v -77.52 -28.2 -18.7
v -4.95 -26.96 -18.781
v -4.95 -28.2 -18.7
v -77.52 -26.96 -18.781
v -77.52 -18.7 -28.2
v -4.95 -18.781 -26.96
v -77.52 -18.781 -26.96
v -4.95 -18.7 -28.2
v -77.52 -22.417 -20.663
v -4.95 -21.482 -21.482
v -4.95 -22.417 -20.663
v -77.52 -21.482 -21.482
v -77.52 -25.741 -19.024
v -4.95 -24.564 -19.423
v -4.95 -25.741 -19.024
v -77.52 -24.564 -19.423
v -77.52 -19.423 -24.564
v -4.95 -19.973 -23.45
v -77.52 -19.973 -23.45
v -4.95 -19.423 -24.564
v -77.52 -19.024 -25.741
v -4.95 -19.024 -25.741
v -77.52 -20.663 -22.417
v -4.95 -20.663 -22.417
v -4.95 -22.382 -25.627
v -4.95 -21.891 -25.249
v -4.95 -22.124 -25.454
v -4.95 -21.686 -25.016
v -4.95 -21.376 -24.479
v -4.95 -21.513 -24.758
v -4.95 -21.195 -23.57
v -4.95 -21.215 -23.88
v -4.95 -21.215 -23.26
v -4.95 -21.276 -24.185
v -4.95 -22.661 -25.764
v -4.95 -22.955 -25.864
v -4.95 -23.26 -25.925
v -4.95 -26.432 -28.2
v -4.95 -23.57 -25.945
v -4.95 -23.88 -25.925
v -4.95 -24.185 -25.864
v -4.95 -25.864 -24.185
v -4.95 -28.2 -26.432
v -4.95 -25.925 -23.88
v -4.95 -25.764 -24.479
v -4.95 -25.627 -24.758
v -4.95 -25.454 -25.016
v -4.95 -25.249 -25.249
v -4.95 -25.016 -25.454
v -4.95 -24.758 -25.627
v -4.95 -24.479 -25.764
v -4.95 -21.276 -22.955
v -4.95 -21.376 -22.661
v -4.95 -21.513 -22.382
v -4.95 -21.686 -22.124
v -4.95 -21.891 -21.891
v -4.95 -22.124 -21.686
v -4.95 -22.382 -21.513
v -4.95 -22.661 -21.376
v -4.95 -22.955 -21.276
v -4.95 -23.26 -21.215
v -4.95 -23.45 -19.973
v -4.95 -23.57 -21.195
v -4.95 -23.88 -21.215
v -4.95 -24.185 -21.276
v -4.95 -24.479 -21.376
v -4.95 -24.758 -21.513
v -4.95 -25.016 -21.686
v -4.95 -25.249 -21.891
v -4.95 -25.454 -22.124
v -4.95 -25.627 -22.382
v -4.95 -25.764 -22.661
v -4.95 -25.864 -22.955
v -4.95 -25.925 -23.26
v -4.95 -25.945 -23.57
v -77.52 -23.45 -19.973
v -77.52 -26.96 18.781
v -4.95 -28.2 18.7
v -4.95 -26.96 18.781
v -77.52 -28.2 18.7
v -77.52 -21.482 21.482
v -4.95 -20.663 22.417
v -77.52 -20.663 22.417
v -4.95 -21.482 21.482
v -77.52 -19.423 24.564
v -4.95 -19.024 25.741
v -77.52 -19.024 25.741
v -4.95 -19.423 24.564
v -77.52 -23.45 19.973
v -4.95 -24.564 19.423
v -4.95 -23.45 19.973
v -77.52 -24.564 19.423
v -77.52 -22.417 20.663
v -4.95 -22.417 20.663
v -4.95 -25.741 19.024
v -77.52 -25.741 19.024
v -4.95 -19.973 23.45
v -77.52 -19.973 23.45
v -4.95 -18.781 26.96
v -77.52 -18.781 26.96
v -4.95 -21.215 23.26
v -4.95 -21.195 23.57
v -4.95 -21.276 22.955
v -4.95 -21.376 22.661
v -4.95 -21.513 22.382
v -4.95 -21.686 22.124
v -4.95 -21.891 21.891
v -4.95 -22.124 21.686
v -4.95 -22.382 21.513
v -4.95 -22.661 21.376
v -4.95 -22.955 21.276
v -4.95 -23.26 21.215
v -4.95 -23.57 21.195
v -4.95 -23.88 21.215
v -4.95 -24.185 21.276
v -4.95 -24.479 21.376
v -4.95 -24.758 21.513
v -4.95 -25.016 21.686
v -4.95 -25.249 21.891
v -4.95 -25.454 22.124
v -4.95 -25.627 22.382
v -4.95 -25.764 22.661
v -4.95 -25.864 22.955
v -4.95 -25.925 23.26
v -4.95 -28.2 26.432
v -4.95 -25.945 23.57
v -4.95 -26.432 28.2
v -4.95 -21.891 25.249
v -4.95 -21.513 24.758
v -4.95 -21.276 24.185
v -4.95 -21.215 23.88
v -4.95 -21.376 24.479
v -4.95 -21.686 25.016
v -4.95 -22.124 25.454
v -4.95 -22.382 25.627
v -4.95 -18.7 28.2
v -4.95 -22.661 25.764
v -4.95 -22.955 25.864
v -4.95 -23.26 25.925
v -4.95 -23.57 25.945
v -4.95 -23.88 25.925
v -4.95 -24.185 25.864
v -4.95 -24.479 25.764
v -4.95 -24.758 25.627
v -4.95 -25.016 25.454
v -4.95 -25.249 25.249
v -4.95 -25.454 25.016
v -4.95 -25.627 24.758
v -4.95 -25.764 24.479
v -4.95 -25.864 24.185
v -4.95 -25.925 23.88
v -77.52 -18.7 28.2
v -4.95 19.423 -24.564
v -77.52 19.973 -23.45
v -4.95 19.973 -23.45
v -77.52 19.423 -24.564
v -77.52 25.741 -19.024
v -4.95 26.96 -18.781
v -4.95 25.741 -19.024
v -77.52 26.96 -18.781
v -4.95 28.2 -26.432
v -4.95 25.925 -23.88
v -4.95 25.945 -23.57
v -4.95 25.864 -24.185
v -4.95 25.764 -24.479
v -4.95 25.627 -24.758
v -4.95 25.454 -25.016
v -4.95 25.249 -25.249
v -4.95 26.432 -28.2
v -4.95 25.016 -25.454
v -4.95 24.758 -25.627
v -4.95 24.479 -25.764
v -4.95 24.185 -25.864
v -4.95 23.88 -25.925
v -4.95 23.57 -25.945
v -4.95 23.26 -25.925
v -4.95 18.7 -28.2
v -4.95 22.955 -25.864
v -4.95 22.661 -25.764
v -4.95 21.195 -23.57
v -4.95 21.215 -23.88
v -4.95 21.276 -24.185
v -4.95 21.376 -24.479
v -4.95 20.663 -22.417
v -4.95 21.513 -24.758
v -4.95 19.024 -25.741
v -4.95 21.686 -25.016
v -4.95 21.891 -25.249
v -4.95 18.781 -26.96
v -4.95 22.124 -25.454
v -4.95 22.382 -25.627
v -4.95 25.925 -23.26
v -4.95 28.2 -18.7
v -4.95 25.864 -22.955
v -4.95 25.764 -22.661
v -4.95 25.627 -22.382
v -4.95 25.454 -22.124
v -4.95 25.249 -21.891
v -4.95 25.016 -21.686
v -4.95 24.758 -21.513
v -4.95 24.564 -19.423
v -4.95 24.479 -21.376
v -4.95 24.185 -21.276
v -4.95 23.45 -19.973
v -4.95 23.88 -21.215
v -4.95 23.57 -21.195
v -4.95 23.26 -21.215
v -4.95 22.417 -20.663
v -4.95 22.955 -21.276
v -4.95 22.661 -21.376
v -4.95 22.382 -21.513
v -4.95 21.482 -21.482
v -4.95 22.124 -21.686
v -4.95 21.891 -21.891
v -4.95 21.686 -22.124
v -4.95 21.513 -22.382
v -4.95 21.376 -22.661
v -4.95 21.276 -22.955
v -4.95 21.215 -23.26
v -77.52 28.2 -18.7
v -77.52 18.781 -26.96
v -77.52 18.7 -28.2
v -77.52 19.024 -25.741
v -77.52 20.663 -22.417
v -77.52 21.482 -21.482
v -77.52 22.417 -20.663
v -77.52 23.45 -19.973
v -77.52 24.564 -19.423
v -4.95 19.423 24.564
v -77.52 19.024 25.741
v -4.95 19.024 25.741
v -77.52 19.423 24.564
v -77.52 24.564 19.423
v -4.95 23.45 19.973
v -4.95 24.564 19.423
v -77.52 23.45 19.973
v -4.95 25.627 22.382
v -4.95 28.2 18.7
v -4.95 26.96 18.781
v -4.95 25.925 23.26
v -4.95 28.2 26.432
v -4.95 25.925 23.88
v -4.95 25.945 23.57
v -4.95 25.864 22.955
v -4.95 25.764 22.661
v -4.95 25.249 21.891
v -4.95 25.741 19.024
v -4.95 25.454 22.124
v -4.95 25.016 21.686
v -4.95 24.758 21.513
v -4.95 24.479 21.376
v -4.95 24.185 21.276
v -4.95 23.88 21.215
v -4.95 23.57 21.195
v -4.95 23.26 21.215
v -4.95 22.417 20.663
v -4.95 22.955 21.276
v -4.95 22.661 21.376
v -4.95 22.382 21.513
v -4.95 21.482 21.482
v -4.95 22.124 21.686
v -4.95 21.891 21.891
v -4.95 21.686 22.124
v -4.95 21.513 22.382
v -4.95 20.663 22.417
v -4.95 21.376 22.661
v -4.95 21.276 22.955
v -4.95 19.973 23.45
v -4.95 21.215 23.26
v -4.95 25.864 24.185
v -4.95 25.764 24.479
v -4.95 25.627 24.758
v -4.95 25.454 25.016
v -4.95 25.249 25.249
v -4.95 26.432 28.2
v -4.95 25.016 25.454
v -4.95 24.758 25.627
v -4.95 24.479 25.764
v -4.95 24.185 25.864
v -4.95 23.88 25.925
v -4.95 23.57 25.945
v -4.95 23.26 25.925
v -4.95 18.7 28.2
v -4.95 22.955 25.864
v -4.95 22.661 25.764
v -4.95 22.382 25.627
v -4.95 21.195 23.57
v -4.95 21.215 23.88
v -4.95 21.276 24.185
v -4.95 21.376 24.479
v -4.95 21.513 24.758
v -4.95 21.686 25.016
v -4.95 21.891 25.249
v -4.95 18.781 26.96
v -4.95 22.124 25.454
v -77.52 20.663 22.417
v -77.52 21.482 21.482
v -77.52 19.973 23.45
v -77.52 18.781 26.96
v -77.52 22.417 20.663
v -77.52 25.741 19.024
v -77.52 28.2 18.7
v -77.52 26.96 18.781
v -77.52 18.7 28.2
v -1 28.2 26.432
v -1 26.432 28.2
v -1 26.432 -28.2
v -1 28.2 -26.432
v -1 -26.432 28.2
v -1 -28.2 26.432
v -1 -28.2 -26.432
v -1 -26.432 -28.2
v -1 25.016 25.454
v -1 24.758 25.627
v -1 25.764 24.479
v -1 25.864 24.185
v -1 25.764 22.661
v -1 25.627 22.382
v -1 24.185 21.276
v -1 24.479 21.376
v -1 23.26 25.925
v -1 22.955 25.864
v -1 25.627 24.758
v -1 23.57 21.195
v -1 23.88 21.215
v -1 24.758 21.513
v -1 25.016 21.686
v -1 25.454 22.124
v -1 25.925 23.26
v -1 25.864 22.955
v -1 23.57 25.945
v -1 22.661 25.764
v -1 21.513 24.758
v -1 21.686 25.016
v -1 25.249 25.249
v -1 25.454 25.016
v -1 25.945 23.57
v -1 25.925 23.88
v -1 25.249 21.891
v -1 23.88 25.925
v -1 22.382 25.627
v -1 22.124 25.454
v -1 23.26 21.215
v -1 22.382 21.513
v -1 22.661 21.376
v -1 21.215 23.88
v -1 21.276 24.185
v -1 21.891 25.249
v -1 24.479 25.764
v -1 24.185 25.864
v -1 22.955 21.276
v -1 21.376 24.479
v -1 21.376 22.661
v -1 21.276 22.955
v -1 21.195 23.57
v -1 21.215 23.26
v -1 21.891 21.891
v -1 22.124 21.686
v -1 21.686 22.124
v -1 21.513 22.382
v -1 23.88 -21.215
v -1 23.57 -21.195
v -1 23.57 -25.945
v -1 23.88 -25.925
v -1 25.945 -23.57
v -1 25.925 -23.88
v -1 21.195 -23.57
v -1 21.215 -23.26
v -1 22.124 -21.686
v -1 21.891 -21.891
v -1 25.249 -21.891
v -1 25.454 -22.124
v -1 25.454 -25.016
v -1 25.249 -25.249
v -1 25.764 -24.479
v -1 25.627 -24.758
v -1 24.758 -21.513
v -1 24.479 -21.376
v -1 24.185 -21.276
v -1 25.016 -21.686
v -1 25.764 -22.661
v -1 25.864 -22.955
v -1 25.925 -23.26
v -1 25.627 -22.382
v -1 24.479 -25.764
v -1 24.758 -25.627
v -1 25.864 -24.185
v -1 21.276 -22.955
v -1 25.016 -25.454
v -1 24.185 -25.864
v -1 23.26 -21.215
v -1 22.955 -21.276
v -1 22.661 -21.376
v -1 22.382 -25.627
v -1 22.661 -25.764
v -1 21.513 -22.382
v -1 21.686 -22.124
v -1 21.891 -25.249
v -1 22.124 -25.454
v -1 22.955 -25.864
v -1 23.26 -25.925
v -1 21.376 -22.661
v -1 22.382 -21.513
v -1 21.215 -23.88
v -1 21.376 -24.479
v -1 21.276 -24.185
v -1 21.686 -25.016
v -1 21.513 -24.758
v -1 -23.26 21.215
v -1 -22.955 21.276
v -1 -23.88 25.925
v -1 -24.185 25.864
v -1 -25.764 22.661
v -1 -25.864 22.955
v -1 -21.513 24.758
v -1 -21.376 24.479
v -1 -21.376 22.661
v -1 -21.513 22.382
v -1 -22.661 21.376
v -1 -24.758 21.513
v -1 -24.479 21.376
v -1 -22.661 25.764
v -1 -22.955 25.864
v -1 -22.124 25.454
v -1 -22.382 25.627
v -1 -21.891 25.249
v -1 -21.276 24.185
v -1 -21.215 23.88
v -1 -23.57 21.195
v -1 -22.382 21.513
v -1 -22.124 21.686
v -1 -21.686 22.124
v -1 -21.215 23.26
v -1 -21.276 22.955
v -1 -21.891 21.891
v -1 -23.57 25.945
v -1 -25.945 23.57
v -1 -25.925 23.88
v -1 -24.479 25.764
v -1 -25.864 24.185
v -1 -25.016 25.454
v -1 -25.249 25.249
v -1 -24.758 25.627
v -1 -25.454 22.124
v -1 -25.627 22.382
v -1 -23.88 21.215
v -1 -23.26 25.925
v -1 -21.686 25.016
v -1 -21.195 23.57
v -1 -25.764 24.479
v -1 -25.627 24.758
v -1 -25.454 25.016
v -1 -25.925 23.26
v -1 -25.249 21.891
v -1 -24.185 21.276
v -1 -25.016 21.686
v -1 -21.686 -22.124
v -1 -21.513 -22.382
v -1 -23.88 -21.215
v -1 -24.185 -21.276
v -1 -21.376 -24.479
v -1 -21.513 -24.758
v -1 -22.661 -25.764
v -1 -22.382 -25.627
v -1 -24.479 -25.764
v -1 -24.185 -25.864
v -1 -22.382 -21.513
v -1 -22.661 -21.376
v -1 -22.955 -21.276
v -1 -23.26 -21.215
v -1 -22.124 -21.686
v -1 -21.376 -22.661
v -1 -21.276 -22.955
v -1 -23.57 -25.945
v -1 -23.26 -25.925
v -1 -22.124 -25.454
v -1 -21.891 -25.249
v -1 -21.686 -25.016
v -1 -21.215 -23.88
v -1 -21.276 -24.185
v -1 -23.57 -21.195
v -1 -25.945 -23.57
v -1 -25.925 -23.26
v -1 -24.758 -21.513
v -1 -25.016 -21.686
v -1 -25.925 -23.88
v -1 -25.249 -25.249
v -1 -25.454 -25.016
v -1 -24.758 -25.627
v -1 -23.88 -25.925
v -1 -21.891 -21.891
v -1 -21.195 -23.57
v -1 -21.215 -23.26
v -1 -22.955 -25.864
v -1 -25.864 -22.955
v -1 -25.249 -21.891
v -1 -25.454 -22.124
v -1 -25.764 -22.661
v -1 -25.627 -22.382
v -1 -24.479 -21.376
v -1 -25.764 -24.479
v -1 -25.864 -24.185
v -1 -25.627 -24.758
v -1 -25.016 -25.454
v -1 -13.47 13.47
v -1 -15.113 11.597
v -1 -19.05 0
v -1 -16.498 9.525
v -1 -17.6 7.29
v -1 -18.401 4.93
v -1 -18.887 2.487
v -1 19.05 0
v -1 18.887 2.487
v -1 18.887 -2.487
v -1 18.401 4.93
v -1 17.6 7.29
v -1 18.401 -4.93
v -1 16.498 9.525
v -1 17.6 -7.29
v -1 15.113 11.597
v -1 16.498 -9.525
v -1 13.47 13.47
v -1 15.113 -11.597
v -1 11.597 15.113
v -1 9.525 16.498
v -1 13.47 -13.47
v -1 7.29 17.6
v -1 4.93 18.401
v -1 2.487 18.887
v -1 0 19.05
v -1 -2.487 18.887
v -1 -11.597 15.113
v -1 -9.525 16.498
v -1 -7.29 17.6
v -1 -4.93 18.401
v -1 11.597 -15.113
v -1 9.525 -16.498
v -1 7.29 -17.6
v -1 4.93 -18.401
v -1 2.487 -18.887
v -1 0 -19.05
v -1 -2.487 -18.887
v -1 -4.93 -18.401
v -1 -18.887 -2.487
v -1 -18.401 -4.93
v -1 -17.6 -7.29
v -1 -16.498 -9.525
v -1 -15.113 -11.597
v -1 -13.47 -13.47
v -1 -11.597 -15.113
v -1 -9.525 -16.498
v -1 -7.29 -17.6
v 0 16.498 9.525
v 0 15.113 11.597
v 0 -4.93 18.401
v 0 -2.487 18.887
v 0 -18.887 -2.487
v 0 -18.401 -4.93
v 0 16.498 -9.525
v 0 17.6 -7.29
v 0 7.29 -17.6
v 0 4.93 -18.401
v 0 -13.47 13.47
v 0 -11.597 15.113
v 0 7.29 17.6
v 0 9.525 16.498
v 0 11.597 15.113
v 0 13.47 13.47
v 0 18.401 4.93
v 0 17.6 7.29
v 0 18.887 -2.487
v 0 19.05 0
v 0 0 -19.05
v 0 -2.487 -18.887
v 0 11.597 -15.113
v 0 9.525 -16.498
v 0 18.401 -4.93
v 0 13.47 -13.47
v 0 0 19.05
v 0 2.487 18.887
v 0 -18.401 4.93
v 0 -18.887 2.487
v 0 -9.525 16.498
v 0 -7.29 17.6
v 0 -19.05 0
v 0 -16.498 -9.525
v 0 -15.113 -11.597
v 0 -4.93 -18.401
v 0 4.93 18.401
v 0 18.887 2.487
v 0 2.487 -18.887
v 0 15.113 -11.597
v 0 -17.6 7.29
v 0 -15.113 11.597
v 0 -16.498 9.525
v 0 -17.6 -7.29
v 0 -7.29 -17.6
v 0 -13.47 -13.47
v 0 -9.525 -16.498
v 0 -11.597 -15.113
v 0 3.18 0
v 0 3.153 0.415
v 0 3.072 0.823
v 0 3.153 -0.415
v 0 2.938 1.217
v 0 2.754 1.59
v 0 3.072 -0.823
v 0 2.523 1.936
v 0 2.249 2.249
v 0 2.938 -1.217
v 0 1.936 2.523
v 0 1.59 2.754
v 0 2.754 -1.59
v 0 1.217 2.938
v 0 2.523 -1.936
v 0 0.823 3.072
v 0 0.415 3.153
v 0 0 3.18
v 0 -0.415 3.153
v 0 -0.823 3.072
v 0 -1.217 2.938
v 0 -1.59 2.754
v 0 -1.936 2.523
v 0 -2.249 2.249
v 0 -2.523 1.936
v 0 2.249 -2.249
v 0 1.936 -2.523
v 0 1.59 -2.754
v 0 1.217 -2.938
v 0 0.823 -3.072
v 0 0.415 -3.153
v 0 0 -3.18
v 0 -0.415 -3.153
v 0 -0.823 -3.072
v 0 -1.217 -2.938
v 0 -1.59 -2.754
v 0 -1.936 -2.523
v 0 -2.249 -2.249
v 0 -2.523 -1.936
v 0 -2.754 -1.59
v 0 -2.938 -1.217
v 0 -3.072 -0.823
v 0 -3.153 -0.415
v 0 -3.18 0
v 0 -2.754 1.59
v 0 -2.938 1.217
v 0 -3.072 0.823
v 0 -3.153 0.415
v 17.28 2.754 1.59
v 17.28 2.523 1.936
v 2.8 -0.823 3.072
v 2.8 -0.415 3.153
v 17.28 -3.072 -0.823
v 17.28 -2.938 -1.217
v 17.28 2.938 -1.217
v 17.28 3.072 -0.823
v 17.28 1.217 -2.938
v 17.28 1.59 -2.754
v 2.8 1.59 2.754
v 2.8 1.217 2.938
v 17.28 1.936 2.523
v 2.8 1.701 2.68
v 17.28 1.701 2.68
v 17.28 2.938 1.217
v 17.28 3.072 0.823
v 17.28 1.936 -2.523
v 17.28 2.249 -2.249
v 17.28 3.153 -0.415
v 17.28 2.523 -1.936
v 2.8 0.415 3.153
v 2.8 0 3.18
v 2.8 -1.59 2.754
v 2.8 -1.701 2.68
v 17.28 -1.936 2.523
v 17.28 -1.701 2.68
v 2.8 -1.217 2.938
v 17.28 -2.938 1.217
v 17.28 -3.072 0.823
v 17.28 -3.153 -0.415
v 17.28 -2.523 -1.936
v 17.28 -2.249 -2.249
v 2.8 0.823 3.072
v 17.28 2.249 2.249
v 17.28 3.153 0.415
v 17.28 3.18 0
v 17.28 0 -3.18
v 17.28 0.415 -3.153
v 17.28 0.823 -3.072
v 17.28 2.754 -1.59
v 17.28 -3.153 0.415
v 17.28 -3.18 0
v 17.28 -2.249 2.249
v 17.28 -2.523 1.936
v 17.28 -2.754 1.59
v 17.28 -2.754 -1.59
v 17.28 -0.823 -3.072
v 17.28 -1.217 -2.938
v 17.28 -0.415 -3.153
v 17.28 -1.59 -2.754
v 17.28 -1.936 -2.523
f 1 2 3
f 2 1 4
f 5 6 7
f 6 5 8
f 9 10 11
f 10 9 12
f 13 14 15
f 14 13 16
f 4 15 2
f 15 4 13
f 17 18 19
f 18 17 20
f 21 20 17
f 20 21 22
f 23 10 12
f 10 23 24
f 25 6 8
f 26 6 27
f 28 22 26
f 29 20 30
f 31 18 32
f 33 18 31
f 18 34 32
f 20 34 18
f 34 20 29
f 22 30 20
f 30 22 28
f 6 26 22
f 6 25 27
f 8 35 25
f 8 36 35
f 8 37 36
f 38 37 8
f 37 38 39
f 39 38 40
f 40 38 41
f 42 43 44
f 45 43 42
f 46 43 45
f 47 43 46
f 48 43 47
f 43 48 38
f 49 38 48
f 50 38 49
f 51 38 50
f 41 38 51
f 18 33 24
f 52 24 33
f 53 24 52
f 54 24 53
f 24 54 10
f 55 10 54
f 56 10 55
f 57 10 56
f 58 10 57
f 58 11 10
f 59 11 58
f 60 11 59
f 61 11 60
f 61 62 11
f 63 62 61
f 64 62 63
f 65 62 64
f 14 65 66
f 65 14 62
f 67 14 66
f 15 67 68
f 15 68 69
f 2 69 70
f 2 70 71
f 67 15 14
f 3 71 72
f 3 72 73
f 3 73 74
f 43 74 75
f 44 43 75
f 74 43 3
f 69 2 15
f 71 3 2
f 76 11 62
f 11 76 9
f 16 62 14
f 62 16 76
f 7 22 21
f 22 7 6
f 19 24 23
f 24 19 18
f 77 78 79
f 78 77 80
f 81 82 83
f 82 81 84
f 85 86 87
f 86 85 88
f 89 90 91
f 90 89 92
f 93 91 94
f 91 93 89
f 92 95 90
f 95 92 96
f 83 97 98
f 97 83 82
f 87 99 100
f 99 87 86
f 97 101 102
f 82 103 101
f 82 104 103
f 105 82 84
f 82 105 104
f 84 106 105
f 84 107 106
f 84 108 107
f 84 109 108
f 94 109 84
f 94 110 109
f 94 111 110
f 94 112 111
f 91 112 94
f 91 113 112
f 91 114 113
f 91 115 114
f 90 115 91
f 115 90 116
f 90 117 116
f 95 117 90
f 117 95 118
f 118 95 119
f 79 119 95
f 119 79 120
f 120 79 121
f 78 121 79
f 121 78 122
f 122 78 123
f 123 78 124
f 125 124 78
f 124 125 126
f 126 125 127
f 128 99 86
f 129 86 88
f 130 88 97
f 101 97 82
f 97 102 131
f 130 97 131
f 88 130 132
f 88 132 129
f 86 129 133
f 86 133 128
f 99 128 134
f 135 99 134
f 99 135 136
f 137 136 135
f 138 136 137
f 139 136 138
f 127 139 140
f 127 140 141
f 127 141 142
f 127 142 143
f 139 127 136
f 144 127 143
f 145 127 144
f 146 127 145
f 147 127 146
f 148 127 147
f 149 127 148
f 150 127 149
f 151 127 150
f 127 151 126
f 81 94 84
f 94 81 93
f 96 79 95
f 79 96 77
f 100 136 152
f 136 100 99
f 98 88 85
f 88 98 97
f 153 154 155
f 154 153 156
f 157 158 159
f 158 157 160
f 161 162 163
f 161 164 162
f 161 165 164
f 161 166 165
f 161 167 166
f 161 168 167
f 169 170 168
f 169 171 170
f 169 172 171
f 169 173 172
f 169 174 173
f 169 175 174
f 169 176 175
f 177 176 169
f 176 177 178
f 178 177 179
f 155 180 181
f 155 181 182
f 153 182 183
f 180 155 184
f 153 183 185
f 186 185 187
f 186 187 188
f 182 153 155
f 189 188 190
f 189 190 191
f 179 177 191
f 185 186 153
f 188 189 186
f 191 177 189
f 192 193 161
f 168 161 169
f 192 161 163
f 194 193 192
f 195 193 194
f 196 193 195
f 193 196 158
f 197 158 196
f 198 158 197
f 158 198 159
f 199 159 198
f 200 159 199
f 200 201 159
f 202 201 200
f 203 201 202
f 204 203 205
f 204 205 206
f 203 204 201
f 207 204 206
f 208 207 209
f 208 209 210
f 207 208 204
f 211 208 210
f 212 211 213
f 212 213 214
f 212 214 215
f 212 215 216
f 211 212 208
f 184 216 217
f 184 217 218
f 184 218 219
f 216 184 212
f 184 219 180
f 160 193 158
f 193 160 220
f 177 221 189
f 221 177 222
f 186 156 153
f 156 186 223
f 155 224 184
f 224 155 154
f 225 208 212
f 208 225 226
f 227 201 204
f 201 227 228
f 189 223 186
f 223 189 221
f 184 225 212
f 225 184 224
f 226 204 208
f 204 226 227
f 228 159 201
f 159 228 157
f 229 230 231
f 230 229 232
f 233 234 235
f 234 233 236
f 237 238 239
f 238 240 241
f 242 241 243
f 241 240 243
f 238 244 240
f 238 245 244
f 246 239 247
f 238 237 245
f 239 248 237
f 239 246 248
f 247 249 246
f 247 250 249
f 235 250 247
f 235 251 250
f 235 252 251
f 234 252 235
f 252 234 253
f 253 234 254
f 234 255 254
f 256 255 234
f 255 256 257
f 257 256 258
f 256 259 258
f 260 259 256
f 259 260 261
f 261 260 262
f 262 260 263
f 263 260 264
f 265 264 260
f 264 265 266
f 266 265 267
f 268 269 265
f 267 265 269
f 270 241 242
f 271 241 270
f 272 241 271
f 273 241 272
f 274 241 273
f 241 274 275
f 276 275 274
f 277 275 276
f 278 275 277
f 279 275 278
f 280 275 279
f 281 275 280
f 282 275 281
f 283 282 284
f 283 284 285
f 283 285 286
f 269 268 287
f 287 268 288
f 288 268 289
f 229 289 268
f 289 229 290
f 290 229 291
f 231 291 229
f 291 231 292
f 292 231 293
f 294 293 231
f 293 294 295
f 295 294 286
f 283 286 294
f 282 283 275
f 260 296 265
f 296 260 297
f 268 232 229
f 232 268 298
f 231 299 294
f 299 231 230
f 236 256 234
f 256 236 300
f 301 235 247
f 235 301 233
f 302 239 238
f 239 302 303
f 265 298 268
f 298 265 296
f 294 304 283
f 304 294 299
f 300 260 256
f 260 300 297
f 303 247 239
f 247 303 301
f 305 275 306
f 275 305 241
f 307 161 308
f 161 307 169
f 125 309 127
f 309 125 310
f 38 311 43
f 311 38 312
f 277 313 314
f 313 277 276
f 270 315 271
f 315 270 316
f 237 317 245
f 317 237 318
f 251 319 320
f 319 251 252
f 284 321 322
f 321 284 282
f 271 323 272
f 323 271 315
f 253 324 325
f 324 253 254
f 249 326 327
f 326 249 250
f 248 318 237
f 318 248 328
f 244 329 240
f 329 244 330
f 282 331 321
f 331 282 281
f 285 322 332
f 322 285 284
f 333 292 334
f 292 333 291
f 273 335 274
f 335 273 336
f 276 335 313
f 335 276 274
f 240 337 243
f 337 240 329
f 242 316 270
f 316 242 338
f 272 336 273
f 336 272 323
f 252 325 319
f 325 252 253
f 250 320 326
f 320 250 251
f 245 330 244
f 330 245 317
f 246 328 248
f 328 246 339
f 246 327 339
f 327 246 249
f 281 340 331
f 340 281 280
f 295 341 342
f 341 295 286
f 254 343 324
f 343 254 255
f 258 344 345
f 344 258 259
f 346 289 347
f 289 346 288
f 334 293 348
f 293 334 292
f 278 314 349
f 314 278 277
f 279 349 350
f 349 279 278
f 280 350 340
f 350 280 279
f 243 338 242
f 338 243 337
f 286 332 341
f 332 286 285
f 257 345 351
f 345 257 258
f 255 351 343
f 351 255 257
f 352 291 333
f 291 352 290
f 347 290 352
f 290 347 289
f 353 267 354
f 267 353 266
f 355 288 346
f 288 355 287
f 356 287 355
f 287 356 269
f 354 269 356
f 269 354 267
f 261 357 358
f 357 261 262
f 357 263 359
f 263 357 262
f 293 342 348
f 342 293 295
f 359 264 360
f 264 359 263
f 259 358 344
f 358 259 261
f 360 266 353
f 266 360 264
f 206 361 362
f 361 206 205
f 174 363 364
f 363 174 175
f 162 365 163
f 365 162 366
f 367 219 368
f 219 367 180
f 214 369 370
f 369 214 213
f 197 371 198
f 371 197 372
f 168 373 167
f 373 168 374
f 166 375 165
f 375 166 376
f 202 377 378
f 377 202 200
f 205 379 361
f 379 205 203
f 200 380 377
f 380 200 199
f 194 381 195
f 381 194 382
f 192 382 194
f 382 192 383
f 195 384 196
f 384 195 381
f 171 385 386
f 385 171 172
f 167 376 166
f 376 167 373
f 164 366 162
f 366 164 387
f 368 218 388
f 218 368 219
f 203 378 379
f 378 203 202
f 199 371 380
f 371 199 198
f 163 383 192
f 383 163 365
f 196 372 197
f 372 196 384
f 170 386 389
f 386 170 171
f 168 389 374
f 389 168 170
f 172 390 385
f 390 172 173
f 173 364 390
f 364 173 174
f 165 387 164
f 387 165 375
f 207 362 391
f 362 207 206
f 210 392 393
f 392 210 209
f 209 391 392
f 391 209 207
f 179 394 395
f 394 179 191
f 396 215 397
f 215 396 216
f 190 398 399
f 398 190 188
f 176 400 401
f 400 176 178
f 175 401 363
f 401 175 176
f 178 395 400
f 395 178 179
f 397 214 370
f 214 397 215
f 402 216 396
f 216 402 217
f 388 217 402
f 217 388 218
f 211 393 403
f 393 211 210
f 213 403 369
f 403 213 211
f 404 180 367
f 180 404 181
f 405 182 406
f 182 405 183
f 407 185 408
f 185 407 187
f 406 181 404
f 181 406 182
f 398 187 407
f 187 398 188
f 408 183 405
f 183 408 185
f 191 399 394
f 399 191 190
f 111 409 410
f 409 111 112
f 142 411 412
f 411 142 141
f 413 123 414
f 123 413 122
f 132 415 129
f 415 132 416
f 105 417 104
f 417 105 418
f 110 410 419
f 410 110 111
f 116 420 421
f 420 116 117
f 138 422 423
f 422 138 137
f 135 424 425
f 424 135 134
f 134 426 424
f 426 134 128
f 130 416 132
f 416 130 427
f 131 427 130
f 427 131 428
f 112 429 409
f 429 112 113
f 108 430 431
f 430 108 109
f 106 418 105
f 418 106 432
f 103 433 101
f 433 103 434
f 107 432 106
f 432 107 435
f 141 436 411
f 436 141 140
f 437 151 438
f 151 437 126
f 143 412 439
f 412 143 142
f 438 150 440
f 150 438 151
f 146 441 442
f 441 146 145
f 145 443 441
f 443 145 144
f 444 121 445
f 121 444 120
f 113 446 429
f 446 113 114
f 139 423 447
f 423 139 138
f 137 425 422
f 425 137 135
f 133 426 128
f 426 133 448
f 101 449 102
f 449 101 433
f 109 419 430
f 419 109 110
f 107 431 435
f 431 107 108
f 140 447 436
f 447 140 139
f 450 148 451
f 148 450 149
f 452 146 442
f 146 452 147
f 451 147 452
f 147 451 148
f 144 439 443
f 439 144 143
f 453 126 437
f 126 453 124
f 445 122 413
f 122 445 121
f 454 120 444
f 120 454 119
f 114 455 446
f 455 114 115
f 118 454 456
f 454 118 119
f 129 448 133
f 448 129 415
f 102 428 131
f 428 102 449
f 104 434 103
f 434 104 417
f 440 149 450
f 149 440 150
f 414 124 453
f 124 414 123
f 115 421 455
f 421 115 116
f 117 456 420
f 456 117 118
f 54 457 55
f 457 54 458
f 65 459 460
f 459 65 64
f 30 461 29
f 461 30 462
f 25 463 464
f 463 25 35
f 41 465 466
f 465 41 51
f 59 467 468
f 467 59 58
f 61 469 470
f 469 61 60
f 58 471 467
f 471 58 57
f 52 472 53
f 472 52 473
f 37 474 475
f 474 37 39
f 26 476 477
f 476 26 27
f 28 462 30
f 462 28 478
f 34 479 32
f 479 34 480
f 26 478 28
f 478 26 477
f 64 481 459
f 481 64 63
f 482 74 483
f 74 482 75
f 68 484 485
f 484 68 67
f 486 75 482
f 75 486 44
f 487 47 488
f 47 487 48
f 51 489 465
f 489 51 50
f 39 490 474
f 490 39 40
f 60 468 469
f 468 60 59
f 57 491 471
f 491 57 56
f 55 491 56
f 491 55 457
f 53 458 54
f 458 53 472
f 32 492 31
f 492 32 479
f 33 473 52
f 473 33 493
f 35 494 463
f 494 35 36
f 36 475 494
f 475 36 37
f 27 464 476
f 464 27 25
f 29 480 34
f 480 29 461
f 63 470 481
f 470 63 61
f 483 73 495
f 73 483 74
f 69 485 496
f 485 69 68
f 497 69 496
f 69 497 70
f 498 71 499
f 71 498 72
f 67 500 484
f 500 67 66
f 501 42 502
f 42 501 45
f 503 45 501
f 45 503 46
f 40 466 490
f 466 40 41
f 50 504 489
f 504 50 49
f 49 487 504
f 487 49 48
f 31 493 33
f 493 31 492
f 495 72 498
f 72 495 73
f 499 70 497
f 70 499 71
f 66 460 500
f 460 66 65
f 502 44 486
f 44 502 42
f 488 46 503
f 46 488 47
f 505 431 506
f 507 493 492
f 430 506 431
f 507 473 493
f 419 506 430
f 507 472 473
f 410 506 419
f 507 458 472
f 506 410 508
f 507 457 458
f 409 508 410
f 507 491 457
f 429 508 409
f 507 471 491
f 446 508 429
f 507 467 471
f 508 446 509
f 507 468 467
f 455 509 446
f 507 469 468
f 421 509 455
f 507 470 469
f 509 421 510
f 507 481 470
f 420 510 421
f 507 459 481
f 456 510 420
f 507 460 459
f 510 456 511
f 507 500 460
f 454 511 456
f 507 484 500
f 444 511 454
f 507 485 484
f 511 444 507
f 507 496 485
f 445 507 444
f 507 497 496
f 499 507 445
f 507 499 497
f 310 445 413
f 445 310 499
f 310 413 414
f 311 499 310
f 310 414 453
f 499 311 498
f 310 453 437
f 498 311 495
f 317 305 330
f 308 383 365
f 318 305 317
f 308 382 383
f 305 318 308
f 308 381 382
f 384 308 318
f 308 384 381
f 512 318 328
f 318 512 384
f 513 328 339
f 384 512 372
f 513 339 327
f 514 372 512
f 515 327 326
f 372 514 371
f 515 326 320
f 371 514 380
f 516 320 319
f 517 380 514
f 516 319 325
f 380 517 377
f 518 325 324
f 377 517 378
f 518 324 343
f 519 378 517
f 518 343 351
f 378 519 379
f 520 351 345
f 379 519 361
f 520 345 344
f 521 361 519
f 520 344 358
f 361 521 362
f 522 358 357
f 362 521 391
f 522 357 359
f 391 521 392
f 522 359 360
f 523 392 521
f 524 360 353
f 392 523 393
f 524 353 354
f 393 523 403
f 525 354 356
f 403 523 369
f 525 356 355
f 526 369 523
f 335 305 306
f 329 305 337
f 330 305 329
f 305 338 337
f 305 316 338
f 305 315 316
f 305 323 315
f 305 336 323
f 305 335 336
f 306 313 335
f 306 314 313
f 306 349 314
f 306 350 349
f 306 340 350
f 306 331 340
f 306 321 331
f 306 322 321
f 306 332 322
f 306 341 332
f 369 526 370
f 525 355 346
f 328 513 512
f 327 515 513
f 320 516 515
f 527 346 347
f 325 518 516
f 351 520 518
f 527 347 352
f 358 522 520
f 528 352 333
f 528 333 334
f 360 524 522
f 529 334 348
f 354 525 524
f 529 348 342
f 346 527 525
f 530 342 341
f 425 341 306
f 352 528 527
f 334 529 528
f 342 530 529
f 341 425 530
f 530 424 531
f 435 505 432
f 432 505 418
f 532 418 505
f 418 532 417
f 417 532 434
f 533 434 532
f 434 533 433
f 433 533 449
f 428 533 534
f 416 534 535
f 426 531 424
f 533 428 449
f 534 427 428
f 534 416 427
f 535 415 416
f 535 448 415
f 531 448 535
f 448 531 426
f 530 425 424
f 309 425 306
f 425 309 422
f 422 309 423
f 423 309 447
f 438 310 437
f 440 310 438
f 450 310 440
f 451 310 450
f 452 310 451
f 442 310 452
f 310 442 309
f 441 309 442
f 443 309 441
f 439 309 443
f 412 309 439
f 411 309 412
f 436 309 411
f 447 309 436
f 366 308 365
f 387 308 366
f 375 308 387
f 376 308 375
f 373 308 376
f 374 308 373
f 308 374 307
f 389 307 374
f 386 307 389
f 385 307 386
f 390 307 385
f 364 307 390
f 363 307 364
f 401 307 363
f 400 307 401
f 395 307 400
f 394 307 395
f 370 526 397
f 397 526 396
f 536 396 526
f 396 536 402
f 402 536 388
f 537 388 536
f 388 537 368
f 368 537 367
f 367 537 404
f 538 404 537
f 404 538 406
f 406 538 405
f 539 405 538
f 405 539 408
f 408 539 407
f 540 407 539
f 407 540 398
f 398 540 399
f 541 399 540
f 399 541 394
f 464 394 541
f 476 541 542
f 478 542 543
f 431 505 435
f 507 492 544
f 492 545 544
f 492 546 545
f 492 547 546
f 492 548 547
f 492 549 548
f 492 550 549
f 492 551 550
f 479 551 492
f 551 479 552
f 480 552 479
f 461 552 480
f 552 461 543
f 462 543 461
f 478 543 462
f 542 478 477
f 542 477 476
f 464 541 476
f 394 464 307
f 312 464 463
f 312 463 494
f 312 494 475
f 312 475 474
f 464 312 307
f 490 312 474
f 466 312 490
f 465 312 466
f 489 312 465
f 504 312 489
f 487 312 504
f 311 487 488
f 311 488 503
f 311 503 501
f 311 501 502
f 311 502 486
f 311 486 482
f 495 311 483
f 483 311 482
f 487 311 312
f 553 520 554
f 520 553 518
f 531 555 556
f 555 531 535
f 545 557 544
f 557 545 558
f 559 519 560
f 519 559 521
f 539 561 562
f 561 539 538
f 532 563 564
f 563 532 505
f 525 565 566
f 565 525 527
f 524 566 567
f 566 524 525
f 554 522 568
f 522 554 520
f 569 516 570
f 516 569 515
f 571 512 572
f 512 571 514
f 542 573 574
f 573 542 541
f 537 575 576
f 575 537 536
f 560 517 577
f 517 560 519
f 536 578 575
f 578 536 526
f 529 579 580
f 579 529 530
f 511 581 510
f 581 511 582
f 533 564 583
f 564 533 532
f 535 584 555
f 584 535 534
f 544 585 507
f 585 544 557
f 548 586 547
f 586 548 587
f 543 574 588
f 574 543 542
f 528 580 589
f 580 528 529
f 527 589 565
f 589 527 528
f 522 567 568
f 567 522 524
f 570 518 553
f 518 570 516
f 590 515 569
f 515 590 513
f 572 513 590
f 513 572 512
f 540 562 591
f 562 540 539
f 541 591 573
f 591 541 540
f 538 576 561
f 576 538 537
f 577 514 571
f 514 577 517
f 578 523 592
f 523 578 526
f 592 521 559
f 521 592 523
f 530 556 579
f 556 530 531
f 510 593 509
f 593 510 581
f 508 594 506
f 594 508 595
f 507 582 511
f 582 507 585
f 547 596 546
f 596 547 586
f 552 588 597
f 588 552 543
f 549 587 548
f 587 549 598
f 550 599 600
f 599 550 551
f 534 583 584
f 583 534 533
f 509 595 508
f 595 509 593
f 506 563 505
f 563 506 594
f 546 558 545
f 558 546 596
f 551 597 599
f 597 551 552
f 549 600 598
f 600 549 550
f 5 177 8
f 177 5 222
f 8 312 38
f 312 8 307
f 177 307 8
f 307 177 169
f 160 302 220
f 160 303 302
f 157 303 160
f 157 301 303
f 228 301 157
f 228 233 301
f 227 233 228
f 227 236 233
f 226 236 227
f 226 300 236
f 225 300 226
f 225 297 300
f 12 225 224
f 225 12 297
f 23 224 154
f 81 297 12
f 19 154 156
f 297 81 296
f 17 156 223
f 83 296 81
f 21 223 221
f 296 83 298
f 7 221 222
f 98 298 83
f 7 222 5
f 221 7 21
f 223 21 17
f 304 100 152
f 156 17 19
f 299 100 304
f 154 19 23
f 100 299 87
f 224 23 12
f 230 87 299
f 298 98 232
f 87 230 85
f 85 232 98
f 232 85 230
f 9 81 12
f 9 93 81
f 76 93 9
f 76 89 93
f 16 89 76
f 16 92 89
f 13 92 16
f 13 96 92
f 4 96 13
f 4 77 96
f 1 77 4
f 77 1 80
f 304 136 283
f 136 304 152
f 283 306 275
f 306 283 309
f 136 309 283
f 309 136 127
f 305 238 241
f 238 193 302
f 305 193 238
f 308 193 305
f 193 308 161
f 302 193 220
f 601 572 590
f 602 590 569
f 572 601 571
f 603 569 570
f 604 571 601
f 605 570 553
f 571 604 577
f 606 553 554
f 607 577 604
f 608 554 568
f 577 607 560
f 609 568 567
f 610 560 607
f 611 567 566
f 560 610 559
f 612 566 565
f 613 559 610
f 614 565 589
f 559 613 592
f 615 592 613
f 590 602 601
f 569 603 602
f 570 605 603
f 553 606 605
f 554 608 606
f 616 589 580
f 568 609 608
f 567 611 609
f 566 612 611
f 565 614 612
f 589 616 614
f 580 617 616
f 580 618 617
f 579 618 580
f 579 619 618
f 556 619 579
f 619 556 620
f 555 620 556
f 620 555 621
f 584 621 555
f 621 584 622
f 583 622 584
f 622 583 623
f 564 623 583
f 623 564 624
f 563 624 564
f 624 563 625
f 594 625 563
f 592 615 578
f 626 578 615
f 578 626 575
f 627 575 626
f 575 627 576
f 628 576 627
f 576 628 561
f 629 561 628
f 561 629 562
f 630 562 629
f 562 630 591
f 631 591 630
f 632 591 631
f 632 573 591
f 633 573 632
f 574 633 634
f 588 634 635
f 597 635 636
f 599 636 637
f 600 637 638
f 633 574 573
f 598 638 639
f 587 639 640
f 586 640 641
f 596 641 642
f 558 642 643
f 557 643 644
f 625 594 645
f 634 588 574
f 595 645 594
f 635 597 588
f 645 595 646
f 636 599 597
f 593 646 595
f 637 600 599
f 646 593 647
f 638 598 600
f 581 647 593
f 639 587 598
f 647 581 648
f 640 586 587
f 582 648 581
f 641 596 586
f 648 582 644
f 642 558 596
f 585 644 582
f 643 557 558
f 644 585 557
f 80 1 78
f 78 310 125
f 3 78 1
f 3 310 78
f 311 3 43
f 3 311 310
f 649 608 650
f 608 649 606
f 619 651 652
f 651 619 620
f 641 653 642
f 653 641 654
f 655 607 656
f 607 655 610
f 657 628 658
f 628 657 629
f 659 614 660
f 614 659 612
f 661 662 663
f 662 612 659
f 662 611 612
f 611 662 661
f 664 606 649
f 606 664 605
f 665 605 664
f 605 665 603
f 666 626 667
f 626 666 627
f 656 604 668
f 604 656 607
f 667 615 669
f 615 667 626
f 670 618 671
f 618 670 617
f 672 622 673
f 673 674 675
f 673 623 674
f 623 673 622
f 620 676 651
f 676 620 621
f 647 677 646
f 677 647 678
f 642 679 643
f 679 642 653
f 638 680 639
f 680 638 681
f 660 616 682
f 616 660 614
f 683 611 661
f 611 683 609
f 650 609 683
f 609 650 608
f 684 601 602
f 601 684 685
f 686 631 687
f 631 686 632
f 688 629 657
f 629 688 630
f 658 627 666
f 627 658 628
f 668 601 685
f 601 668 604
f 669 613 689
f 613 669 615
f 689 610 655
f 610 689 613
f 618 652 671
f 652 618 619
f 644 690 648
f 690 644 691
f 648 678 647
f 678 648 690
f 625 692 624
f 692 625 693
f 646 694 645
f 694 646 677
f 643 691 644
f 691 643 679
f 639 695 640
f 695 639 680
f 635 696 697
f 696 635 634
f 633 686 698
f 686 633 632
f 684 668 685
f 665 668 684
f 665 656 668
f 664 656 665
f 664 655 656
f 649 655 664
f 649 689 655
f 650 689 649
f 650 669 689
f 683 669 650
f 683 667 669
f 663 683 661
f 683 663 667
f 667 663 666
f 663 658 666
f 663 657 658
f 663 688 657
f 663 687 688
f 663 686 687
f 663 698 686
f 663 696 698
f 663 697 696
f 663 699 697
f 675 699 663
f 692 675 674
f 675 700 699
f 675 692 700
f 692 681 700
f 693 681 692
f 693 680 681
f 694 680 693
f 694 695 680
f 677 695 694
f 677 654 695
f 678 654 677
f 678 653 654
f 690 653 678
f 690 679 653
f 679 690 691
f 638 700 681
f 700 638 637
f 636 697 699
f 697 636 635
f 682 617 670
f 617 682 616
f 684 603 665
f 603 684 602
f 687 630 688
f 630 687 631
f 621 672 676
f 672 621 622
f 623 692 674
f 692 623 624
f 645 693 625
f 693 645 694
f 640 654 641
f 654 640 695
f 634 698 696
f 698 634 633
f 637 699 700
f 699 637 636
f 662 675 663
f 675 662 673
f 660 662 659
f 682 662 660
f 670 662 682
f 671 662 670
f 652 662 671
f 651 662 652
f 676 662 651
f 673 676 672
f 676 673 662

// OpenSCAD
/**********************************************************************************************************************
 **
 ** lib/MCAD/stepper_nema23_ling.scad
 **
 ** This file renders a NEMA stepper motor of the dimensions specified by the file name.
 **
 **********************************************************************************************************************/

include <MCAD/stepper.scad>

$fn = 48;
rotate([0, -90, 0])
	motor(Nema23, NemaLong, dualAxis = false);
